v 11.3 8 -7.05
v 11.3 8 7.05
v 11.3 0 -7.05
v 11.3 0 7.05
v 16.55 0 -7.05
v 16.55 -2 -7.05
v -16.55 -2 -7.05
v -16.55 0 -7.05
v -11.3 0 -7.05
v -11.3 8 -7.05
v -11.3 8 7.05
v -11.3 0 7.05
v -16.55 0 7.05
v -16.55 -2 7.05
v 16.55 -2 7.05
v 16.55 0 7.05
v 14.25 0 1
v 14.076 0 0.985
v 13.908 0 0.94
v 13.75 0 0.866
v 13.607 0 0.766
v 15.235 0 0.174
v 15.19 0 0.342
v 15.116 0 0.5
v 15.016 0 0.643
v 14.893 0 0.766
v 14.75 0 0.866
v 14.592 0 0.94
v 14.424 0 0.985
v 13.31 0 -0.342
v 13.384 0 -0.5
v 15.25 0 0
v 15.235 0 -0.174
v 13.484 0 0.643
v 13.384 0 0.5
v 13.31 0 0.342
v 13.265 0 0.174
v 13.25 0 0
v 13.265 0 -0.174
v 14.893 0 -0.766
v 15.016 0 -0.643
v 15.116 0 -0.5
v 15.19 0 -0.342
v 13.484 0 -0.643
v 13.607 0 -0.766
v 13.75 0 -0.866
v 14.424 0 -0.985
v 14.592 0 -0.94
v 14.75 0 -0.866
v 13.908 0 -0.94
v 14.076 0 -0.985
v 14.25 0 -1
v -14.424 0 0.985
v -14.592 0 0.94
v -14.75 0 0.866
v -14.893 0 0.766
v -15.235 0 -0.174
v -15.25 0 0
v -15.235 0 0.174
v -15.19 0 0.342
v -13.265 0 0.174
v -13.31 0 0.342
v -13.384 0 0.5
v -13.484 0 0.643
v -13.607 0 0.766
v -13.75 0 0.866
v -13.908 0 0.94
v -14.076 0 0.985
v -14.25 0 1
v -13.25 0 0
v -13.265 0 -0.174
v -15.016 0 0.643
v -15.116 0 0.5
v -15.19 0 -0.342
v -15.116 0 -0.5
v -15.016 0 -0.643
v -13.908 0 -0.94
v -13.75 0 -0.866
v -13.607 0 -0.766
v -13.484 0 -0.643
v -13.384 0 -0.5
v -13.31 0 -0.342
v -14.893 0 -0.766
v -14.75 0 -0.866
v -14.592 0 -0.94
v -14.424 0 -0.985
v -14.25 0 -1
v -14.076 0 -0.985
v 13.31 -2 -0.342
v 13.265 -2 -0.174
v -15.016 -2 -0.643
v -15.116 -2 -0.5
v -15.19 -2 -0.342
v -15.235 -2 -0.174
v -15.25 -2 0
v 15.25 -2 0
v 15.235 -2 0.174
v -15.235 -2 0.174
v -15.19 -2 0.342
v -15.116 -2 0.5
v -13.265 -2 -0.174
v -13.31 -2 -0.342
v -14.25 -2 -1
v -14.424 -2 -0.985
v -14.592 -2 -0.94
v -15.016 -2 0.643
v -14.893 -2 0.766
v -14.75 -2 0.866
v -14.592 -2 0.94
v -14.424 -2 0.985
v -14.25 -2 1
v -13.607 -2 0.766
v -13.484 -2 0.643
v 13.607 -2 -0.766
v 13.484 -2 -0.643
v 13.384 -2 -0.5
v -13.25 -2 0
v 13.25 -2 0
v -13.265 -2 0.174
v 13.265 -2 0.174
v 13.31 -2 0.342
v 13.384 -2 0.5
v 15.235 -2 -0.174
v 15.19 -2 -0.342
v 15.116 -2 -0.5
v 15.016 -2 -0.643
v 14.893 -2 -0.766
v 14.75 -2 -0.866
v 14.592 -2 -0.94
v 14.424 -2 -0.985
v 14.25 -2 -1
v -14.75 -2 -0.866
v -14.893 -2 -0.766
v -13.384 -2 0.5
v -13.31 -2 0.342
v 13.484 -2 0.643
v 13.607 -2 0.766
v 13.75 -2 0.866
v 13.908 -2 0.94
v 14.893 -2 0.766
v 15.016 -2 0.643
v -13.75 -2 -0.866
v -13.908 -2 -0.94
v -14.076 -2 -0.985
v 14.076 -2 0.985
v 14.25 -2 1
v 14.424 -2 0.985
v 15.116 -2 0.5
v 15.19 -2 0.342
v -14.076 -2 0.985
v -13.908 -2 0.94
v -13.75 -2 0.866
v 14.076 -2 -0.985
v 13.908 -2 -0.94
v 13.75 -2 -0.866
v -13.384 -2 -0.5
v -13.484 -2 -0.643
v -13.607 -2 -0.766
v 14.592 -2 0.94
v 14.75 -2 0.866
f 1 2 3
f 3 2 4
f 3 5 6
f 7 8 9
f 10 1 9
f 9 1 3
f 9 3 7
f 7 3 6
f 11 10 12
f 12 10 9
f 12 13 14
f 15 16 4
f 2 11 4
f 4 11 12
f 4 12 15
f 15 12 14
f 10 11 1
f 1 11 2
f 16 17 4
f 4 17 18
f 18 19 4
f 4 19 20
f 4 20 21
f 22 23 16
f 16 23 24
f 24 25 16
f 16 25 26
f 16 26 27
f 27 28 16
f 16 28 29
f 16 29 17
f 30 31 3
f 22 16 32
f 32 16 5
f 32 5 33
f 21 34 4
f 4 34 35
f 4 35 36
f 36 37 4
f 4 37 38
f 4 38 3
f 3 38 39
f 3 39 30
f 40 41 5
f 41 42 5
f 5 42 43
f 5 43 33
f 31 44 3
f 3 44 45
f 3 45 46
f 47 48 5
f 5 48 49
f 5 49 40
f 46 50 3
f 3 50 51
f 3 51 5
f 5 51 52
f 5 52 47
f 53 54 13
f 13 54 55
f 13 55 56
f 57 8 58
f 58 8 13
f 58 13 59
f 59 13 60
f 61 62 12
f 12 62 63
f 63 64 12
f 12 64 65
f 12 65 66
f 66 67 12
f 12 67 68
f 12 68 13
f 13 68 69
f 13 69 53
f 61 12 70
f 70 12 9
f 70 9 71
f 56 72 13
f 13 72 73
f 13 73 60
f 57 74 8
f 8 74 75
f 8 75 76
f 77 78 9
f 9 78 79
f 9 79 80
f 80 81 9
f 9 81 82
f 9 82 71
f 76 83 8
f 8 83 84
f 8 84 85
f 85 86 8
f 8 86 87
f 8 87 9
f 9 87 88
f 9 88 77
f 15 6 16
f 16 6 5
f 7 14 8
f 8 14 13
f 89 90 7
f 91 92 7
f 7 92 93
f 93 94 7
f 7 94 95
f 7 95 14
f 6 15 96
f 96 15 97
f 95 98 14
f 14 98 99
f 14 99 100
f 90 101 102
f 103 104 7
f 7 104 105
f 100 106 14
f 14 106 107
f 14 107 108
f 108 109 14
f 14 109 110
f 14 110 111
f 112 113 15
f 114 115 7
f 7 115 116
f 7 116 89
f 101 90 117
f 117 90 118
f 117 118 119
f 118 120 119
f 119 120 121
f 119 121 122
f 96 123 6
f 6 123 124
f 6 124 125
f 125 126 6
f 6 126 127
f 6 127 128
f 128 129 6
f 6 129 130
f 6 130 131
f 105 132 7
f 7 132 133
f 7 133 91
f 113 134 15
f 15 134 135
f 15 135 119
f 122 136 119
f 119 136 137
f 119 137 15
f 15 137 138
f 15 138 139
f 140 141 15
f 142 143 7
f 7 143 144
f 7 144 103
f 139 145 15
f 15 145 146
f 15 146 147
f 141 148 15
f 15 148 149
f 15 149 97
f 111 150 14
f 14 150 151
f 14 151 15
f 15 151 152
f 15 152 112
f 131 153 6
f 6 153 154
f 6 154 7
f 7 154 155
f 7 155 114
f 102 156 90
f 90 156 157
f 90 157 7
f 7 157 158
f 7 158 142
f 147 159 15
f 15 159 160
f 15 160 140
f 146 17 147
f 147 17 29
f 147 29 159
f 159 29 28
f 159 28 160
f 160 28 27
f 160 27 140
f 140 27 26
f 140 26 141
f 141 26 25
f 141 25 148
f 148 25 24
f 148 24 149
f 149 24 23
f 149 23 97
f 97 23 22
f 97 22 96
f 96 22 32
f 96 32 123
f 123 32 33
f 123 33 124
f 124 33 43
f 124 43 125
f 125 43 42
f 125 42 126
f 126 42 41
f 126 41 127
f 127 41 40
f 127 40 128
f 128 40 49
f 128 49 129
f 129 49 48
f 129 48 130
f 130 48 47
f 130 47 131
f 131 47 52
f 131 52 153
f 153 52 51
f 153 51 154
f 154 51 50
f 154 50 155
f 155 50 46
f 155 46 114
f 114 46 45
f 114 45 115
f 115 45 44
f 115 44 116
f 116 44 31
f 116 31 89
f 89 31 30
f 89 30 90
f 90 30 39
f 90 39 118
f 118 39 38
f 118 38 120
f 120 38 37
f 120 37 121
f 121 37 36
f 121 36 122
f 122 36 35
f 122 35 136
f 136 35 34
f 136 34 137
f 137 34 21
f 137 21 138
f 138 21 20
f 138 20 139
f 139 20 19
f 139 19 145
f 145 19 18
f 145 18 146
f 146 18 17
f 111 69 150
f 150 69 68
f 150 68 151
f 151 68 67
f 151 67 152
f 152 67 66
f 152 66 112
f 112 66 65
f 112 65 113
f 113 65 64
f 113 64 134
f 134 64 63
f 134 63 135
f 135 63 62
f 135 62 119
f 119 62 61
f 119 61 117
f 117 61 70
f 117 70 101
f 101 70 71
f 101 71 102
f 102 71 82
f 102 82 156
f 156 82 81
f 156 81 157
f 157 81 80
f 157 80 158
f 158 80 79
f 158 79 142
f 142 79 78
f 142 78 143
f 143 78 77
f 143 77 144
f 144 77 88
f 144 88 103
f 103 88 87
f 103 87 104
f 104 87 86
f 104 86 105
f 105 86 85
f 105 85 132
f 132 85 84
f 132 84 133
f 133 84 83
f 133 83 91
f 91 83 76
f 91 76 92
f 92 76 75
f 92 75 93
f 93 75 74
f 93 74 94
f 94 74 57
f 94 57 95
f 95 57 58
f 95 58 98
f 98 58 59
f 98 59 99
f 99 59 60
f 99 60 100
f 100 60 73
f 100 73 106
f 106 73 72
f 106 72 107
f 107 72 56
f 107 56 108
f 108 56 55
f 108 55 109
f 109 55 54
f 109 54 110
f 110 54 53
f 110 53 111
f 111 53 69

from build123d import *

# Parameters (mm, degrees)
SKETCH1_W                    = 22.6
SKETCH1_H                    = 14.1
BOSS_EXTRUDE1_DEPTH          = 8
SKETCH2_W                    = 33.1
SKETCH2_H                    = 14.1
BOSS_EXTRUDE2_DEPTH          = 2
F_2_0_2_DIAMETER_HOLE1_D     = 2
F_2_0_2_DIAMETER_HOLE1_DEPTH = 2


with BuildPart() as part:
    # Sketch1 → Boss-Extrude1 (new body)
    with BuildSketch(Plane(origin=(0, 0, 0), x_dir=(1, 0, 0), z_dir=(0, 1, 0))):
        Rectangle(SKETCH1_W, SKETCH1_H)
    extrude(amount=BOSS_EXTRUDE1_DEPTH)

    # Sketch2 → Boss-Extrude2 (add)
    with BuildSketch(Plane.XZ):
        Rectangle(SKETCH2_W, SKETCH2_H)
    extrude(amount=BOSS_EXTRUDE2_DEPTH)

    # Ø2.0 (2) Diameter Hole1
    with Locations(Plane(origin=(0, 0, 0), x_dir=(1, 0, 0), z_dir=(0, 1, 0))):
        with Locations((-14.25, 0), (14.25, 0)):
            Hole(F_2_0_2_DIAMETER_HOLE1_D / 2, depth=F_2_0_2_DIAMETER_HOLE1_DEPTH)


solid = part.part
